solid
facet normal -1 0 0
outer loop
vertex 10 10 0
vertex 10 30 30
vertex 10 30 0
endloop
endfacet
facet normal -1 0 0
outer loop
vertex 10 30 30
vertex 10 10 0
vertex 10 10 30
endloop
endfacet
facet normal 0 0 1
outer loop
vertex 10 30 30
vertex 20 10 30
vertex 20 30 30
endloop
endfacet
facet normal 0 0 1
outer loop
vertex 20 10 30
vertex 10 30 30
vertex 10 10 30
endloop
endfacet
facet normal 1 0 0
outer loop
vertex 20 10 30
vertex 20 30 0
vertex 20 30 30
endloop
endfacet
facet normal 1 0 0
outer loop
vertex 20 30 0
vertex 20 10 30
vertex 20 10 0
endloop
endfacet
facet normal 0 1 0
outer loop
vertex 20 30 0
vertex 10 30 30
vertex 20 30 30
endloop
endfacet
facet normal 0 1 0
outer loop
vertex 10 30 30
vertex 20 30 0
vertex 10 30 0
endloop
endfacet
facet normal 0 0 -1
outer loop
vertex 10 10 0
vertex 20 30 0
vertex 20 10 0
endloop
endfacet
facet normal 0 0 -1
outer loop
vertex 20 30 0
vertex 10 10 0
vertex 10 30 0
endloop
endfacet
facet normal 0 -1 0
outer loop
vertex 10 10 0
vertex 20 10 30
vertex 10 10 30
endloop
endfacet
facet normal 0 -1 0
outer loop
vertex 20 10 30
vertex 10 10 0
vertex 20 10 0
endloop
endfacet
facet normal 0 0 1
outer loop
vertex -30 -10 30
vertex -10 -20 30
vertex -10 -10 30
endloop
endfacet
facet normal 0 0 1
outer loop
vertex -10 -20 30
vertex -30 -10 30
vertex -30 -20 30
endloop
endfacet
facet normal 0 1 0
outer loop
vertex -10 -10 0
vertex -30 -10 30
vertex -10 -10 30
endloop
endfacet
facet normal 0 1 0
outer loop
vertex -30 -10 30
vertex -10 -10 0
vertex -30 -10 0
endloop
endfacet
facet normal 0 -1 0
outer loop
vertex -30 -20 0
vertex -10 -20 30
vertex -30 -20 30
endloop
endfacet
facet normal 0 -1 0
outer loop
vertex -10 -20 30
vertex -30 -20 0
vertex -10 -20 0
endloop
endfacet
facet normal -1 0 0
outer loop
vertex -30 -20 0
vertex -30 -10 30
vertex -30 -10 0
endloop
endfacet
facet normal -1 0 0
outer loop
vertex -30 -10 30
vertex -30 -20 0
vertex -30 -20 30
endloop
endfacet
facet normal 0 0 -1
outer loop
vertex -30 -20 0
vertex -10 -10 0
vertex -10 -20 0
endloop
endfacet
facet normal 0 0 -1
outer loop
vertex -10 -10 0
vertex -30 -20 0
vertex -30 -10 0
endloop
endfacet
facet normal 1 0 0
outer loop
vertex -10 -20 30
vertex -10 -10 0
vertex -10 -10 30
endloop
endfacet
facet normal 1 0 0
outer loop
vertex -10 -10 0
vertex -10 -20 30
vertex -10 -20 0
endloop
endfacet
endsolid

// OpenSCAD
//
// Makes a copy of the children and a mirror of them.                       
// Params:
//  vec -- [x,y,z] mirror plane.
//
module copy_mirror(vec=[0,1,0]) {
  children();
  mirror(vec) children();
}


// Example.
copy_mirror([1,1,0])
  translate([10,10,0])
    cube([10,20,30]);
